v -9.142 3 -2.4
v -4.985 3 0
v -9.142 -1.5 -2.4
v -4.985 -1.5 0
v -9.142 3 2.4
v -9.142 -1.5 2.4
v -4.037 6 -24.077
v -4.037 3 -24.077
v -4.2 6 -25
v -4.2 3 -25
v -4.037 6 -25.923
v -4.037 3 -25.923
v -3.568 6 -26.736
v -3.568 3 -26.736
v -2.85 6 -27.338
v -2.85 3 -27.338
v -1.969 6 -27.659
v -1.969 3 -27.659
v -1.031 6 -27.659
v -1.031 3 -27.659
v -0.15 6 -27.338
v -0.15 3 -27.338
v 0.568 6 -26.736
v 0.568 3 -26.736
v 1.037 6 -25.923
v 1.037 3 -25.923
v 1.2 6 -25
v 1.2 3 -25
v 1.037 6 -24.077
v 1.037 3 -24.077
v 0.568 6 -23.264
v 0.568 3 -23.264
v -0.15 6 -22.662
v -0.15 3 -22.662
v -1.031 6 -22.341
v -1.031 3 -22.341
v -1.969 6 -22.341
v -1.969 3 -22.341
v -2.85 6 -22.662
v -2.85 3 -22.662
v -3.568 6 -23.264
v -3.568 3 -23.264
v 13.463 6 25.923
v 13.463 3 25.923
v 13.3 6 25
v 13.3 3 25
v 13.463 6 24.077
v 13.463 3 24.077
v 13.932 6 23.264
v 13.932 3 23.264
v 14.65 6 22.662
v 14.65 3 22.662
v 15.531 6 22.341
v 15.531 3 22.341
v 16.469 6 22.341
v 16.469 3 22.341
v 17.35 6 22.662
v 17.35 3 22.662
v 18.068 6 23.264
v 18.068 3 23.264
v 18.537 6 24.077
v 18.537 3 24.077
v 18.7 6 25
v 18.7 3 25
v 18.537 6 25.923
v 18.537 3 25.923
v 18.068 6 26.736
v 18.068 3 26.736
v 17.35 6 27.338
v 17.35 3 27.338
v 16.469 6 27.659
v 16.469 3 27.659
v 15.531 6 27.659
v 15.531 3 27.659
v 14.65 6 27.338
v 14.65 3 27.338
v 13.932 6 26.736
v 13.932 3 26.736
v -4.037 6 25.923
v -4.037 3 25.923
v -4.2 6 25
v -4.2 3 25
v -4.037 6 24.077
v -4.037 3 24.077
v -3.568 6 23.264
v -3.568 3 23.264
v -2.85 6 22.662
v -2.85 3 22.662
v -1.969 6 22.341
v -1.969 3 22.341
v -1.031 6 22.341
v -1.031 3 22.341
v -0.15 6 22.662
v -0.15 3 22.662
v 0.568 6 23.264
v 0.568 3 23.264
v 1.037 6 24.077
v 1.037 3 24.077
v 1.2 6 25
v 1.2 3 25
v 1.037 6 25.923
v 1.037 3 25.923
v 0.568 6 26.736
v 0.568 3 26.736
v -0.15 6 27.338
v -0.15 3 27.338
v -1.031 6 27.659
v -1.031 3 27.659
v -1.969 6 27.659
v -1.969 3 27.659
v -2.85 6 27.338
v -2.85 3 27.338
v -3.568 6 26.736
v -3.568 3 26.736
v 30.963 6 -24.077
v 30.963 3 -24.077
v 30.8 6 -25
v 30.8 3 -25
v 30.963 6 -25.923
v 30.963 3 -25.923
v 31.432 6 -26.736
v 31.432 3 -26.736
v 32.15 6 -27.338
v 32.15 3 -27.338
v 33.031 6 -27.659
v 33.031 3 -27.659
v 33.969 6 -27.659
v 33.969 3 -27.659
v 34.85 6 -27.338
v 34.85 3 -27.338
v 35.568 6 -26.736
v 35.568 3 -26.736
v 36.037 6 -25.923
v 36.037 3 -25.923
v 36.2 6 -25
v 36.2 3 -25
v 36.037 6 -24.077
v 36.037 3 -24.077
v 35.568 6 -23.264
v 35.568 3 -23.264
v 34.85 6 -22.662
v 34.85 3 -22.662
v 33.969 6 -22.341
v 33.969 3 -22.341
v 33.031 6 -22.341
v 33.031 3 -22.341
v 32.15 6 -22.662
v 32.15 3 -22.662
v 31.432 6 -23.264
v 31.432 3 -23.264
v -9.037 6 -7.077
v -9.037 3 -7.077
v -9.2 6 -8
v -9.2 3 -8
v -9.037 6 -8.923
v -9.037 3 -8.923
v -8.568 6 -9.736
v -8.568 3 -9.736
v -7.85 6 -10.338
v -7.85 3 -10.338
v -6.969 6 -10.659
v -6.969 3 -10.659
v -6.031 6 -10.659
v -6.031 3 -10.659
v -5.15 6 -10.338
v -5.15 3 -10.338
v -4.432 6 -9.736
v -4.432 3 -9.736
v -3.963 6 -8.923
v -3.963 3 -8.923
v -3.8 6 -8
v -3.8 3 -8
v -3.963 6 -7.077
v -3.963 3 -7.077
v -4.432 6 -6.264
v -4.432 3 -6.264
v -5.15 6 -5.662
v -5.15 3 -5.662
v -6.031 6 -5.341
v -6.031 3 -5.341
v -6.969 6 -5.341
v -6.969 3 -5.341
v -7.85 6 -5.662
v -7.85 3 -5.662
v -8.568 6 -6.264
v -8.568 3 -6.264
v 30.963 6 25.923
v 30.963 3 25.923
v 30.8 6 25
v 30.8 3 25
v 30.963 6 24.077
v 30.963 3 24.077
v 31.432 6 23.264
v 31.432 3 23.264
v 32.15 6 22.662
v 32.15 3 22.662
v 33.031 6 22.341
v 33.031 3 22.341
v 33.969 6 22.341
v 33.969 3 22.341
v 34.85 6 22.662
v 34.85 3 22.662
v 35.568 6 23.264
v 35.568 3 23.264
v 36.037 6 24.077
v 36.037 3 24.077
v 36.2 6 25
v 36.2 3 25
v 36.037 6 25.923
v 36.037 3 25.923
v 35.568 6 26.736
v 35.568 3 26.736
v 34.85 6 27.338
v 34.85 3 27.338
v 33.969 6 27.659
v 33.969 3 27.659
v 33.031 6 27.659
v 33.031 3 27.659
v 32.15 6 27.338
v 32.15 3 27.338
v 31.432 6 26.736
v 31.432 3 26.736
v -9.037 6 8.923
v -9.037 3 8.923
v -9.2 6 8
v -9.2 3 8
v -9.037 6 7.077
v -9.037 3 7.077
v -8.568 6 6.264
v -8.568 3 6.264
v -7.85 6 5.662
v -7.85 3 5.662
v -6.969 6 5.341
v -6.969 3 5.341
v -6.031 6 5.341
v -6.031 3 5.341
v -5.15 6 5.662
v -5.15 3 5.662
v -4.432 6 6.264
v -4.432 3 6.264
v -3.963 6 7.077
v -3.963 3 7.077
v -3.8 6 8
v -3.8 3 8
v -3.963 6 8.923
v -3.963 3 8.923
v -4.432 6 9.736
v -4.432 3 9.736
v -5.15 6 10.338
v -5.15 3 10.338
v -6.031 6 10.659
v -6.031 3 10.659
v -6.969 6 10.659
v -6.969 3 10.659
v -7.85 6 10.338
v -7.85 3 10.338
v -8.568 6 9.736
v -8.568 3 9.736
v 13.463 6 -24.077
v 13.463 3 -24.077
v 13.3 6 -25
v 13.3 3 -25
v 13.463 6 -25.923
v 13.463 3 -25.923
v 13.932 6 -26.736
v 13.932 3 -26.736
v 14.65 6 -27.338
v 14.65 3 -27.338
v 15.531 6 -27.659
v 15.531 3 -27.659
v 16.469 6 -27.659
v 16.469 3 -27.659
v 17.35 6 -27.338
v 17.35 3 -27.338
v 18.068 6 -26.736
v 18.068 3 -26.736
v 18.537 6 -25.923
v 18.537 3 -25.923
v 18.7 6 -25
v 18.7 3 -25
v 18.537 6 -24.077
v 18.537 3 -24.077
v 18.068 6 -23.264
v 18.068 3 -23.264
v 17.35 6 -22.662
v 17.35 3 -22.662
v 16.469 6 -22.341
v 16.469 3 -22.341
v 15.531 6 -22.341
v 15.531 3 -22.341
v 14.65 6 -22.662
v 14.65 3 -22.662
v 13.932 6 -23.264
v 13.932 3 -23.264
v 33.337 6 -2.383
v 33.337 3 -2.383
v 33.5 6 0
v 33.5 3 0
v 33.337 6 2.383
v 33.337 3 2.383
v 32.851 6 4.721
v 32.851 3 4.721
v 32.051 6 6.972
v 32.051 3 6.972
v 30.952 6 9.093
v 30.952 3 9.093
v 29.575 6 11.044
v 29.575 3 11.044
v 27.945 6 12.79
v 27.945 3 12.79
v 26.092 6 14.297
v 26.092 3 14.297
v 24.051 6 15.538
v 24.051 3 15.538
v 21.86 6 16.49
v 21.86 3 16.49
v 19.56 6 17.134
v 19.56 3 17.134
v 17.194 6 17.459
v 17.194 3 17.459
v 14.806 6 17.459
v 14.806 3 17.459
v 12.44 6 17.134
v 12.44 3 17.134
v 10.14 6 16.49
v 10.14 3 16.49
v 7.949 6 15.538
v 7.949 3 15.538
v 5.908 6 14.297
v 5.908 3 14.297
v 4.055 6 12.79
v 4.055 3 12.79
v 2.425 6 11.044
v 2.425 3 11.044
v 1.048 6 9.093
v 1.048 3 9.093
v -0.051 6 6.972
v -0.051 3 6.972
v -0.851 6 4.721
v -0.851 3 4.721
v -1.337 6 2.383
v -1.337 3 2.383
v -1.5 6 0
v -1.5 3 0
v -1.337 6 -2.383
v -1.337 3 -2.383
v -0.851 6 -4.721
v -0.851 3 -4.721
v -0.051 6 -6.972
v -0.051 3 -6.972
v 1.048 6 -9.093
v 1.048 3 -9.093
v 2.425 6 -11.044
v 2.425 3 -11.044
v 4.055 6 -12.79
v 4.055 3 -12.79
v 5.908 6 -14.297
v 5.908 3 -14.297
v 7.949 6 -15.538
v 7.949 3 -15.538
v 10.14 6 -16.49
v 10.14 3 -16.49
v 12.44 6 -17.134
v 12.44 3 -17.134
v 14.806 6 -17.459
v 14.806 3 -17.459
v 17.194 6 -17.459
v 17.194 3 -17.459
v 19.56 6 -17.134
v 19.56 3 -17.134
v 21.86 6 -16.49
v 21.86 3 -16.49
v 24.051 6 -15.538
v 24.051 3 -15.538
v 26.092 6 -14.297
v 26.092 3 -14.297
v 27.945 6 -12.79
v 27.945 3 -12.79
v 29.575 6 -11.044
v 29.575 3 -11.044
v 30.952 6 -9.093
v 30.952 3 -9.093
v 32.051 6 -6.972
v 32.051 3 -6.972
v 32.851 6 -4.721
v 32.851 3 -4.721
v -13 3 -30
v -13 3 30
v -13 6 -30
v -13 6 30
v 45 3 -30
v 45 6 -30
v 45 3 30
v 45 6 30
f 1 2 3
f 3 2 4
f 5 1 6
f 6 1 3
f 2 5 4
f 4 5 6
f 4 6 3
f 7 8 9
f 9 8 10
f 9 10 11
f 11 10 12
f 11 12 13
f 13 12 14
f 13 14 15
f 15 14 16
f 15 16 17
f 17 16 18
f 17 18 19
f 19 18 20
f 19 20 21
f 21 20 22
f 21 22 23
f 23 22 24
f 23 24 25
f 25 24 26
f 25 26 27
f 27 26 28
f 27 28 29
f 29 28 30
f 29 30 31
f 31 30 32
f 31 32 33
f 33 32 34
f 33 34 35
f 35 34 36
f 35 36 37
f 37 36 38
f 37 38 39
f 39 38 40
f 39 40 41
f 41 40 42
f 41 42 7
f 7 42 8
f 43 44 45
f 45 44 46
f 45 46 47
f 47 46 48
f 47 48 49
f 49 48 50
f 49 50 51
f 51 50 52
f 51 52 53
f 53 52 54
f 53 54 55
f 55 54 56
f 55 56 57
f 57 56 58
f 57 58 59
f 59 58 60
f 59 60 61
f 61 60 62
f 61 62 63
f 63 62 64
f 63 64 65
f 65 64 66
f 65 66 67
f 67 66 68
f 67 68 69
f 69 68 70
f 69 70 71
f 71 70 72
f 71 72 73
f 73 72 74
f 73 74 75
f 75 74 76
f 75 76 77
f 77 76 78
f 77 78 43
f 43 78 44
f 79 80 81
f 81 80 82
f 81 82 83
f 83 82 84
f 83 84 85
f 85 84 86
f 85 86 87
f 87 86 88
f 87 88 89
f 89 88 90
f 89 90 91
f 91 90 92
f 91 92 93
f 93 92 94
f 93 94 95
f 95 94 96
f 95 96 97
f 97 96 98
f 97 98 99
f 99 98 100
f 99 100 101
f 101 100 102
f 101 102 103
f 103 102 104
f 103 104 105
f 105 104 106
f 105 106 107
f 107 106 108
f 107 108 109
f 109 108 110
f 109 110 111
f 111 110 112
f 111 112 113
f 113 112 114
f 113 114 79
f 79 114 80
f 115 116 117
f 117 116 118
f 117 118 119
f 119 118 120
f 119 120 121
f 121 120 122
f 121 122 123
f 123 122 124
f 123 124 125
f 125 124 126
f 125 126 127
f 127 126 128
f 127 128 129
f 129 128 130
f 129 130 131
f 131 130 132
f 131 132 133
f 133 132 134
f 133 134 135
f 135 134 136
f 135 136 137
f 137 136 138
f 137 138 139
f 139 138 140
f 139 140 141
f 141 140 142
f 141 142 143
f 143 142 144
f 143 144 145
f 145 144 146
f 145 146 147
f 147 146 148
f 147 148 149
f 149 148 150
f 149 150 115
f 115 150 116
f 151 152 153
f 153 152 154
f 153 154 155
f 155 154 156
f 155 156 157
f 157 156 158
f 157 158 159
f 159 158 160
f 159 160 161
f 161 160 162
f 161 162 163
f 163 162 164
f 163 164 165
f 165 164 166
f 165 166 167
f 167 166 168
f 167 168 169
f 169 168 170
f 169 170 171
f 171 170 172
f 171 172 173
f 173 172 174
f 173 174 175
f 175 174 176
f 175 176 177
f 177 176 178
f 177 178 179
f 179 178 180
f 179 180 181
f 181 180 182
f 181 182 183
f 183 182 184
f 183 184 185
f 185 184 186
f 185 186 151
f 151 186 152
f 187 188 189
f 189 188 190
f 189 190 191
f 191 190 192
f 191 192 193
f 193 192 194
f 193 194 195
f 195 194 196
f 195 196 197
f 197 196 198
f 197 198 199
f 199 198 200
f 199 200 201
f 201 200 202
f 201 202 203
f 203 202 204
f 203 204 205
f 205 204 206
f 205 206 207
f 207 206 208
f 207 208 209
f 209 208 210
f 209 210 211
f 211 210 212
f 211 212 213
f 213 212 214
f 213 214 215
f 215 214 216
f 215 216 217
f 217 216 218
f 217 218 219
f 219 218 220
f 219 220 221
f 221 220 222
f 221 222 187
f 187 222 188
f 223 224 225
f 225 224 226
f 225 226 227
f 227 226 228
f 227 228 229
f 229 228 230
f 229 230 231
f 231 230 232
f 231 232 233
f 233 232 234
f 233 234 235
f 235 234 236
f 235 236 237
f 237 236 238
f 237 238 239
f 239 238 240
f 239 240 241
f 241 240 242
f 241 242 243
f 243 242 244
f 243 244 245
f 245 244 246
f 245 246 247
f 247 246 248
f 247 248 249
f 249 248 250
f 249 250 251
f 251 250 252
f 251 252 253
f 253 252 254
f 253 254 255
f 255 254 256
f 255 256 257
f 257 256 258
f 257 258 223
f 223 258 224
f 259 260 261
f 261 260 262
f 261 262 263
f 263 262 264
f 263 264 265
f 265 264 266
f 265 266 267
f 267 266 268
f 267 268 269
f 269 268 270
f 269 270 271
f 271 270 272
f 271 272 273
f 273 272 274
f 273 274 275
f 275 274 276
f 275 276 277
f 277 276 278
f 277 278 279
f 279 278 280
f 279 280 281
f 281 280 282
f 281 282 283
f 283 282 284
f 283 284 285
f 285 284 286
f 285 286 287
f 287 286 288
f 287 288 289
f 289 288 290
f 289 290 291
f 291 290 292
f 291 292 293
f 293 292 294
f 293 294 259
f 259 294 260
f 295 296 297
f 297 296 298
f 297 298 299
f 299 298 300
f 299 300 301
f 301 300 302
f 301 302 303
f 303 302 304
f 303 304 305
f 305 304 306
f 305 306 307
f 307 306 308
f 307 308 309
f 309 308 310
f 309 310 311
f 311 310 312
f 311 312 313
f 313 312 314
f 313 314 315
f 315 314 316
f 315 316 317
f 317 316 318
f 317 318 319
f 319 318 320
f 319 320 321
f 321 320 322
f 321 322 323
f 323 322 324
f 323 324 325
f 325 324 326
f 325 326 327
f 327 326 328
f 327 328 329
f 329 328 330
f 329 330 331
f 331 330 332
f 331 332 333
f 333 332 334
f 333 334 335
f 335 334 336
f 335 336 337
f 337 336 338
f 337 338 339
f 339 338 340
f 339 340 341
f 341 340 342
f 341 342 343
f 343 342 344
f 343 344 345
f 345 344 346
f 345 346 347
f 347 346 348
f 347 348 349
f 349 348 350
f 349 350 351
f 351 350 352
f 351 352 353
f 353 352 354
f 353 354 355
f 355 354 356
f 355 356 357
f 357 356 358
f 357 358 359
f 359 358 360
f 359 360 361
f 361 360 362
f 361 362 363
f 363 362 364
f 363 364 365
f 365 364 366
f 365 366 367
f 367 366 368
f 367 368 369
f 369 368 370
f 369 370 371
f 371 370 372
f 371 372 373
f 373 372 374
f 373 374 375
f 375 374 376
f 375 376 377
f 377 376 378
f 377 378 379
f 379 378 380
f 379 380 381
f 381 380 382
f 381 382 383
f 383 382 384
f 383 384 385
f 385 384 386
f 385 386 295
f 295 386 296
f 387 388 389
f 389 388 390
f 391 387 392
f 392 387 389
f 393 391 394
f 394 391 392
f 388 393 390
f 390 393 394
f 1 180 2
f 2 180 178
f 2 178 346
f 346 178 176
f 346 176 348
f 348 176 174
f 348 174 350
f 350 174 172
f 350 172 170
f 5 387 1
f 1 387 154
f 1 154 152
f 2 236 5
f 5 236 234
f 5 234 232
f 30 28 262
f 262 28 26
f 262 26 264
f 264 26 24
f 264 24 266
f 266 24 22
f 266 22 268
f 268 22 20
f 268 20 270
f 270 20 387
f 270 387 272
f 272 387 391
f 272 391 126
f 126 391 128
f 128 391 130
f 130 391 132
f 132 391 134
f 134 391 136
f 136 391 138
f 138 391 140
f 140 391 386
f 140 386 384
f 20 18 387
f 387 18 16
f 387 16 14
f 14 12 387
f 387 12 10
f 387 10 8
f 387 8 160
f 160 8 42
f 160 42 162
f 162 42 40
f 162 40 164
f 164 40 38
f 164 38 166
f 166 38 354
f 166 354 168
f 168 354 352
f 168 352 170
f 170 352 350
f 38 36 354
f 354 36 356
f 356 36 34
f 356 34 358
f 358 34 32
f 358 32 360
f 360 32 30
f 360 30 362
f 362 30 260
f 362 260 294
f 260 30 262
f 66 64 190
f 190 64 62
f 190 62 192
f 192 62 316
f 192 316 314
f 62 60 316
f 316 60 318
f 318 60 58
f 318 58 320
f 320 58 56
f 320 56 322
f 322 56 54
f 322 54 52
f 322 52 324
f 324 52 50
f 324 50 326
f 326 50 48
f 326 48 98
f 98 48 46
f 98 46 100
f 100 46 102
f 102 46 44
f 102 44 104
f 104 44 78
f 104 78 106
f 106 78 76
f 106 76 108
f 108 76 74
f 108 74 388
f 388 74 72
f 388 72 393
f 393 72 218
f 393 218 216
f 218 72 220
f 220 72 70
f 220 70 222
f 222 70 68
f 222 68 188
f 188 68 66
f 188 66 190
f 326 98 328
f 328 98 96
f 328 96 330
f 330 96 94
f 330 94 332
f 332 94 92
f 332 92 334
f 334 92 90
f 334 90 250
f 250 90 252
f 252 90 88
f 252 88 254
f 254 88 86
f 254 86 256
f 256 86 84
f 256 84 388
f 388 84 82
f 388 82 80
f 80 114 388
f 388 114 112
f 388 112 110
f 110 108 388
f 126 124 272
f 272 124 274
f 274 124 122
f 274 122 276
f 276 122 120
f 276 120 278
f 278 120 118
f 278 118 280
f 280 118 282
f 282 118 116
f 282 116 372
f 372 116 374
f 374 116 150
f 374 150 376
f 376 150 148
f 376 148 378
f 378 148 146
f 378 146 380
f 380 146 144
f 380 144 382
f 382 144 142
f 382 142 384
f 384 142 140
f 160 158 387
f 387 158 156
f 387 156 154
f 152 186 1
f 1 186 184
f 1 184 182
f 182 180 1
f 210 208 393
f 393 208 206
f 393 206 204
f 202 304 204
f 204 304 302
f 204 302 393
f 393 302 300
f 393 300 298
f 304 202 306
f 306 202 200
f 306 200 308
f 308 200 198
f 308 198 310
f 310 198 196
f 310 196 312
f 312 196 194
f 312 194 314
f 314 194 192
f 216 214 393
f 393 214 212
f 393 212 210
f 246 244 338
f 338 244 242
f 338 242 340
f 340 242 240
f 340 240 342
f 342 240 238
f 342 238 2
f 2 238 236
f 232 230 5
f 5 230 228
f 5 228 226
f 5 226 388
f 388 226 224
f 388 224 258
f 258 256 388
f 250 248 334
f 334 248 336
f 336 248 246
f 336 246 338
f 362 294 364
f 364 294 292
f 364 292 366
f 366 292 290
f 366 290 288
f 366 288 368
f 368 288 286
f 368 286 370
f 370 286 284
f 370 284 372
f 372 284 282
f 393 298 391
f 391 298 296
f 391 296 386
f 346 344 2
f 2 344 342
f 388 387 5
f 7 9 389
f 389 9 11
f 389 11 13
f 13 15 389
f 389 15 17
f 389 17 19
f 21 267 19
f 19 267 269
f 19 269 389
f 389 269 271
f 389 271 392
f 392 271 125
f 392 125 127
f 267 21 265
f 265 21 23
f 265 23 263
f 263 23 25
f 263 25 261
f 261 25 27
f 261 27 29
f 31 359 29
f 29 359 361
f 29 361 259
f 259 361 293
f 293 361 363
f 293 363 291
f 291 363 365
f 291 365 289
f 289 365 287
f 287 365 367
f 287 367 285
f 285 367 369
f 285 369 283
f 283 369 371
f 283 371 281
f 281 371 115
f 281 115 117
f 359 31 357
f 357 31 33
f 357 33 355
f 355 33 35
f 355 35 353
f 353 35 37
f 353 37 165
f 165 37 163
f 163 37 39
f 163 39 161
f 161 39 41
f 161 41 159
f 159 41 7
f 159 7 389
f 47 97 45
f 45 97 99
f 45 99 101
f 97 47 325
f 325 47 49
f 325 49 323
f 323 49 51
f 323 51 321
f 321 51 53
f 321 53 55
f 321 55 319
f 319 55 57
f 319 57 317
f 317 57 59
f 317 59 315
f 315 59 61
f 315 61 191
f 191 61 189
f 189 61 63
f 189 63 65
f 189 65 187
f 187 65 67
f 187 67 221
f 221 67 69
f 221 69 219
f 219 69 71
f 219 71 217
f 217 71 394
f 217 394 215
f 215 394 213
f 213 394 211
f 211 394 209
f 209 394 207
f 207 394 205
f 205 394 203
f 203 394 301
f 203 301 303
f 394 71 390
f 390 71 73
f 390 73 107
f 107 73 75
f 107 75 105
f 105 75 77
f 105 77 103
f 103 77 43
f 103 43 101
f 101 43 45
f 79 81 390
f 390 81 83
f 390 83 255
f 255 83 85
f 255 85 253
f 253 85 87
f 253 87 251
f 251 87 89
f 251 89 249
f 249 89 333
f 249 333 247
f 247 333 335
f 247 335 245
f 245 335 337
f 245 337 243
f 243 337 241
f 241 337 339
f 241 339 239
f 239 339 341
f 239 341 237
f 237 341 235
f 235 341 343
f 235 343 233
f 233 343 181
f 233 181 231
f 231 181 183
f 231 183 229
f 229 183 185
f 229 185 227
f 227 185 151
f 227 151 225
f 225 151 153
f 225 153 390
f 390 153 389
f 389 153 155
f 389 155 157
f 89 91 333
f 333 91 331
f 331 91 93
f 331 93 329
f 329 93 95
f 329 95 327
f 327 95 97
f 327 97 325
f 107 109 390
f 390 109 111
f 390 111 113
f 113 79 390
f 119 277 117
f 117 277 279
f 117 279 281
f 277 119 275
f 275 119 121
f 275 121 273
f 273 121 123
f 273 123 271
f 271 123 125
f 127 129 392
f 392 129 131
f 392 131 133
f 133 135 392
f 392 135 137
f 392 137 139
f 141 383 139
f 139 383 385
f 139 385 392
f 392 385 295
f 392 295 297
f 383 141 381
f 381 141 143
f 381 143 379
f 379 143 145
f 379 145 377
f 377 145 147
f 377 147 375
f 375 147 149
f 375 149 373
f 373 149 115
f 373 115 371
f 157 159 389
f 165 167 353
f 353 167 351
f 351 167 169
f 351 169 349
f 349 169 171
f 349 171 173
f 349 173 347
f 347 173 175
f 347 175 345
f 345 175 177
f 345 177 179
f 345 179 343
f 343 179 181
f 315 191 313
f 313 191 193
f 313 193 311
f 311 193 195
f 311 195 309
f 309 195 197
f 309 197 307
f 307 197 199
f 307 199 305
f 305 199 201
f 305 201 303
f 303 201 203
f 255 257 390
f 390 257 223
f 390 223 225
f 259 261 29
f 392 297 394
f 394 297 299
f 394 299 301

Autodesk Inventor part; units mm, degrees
ref_plane "YZ Plane" through (0, 0, 0) normal (1, 0, 0) x (0, 1, 0)
ref_plane "XZ Plane" through (0, 0, 0) normal (0, 1, 0) x (-1, 0, 0)
ref_plane "XY Plane" through (0, 0, 0) normal (0, 0, 1) x (1, 0, 0)
ref_plane "Work Plane5" through (0, 3, 0) normal (0, 1, 0) x (1, 0, 0)
ref_plane "Work Plane2" through (0, 0, 0) normal (0, -1, 0) x (1, 0, 0)
ref_plane "Work Plane1" through (0, 3, 0) normal (0, 1, 0) x (1, 0, 0)
ref_plane "Work Plane7" through (0, 3, 0) normal (0, -1, 0) x (1, 0, 0)
sketch "Sketch77" plane through (0, 3, 0) normal (0, -1, 0) x (1, 0, 0)
  circle A0 centre (16, 0) radius 17.5
  point P0 (0, 0)
  dimension "d219" = 35
ref_plane "Work Plane6" through (0, 3, 0) normal (0, -1, 0) x (1, 0, 0)
sketch "Sketch78" plane through (0, 3, 0) normal (0, -1, 0) x (1, 0, 0)
  line L0 (45, -30) -> (-13, -30)
  line L1 (-13, -30) -> (-13, 30)
  line L2 (-13, 30) -> (45, 30)
  line L3 (45, 30) -> (45, -30)
  line L4 (45, -30) -> (-13, 30) construction
  line L5 (-13, -30) -> (45, 30) construction
  point P0 (0, 0)
  point P1 (16, 0)
  dimension "d220" = 58
  dimension "d221" = 60
extrude "Extrusion53" add sketch "Sketch78" against normal blind 3
extrude "Extrusion54" cut sketch "Sketch77" against normal blind 3
ref_plane "Work Plane9" through (0, 3, 0) normal (0, -1, 0) x (1, 0, 0)
sketch "Sketch81" plane through (0, 3, 0) normal (0, -1, 0) x (1, 0, 0)
  circle A0 centre (33.5, -25) radius 2.7
  line L0 (-13, -30) -> (45, -30) projected
  line L1 (45, -30) -> (45, 30) projected
  circle A1 centre (16, -25) radius 2.7
  circle A2 centre (-1.5, -25) radius 2.7
  circle A3 centre (-6.5, -8) radius 2.7
  circle A4 centre (-6.5, 8) radius 2.7
  circle A5 centre (-1.5, 25) radius 2.7
  circle A6 centre (16, 25) radius 2.7
  circle A7 centre (33.5, 25) radius 2.7
  point P0 (0, 0)
  dimension "mag_D" = 5.4
  dimension "d232" = 5
  dimension "d233" = 11.5
  dimension "d234" = 5.4
  dimension "d235" = 17.5
  dimension "d236" = 5.4
  dimension "d237" = 17.5
  dimension "d238" = 5.4
  dimension "d239" = 5
  dimension "d240" = 17
  dimension "d241" = 5.4
  dimension "d242" = 16
  dimension "d243" = 5.4
  dimension "d244" = 17
  dimension "d245" = 5.4
  dimension "d246" = 17.5
  dimension "d247" = 5.4
  dimension "d248" = 17.5
  dimension "d249" = 5
extrude "Extrusion56" cut sketch "Sketch81" against normal blind 30
ref_plane "Work Plane8" through (0, 3, 0) normal (0, -1, 0) x (1, 0, 0)
sketch "Sketch83" plane through (0, 3, 0) normal (0, -1, 0) x (1, 0, 0)
  circle A0 centre (-6.5, -8) radius 2.7 projected
  line L0 (-9.1417, -2.4) -> (-9.1417, 2.4)
  line L1 (-9.1417, 2.4) -> (-4.9848, 0)
  line L2 (-4.9848, 0) -> (-9.1417, -2.4)
  point P0 (0, 0)
  point P1 (-9.1417, -8.5581)
  point P2 (-7.756, 0)
  dimension "d253" = 4.8
extrude "Extrusion57" add sketch "Sketch83" along normal blind 4.5 contours L0 L1 L2
sketch "Sketch84" plane through (0, 6, 0) normal (0, 1, 0) x (1, 0, 0)
  point P0 (0, 0)
equation "\"d234\" = mag_D"
equation "\"d236\" = mag_D"
equation "\"d237\" = d235"
equation "\"d238\" = mag_D"
equation "\"d241\" = mag_D"
equation "\"d243\" = mag_D"
equation "\"d244\" = d240"
equation "\"d245\" = mag_D"
equation "\"d246\" = d235"
equation "\"d247\" = mag_D"
equation "\"d248\" = d235"
equation "\"d249\" = d239"
properties part number "liquid_port_v03_printtest"
